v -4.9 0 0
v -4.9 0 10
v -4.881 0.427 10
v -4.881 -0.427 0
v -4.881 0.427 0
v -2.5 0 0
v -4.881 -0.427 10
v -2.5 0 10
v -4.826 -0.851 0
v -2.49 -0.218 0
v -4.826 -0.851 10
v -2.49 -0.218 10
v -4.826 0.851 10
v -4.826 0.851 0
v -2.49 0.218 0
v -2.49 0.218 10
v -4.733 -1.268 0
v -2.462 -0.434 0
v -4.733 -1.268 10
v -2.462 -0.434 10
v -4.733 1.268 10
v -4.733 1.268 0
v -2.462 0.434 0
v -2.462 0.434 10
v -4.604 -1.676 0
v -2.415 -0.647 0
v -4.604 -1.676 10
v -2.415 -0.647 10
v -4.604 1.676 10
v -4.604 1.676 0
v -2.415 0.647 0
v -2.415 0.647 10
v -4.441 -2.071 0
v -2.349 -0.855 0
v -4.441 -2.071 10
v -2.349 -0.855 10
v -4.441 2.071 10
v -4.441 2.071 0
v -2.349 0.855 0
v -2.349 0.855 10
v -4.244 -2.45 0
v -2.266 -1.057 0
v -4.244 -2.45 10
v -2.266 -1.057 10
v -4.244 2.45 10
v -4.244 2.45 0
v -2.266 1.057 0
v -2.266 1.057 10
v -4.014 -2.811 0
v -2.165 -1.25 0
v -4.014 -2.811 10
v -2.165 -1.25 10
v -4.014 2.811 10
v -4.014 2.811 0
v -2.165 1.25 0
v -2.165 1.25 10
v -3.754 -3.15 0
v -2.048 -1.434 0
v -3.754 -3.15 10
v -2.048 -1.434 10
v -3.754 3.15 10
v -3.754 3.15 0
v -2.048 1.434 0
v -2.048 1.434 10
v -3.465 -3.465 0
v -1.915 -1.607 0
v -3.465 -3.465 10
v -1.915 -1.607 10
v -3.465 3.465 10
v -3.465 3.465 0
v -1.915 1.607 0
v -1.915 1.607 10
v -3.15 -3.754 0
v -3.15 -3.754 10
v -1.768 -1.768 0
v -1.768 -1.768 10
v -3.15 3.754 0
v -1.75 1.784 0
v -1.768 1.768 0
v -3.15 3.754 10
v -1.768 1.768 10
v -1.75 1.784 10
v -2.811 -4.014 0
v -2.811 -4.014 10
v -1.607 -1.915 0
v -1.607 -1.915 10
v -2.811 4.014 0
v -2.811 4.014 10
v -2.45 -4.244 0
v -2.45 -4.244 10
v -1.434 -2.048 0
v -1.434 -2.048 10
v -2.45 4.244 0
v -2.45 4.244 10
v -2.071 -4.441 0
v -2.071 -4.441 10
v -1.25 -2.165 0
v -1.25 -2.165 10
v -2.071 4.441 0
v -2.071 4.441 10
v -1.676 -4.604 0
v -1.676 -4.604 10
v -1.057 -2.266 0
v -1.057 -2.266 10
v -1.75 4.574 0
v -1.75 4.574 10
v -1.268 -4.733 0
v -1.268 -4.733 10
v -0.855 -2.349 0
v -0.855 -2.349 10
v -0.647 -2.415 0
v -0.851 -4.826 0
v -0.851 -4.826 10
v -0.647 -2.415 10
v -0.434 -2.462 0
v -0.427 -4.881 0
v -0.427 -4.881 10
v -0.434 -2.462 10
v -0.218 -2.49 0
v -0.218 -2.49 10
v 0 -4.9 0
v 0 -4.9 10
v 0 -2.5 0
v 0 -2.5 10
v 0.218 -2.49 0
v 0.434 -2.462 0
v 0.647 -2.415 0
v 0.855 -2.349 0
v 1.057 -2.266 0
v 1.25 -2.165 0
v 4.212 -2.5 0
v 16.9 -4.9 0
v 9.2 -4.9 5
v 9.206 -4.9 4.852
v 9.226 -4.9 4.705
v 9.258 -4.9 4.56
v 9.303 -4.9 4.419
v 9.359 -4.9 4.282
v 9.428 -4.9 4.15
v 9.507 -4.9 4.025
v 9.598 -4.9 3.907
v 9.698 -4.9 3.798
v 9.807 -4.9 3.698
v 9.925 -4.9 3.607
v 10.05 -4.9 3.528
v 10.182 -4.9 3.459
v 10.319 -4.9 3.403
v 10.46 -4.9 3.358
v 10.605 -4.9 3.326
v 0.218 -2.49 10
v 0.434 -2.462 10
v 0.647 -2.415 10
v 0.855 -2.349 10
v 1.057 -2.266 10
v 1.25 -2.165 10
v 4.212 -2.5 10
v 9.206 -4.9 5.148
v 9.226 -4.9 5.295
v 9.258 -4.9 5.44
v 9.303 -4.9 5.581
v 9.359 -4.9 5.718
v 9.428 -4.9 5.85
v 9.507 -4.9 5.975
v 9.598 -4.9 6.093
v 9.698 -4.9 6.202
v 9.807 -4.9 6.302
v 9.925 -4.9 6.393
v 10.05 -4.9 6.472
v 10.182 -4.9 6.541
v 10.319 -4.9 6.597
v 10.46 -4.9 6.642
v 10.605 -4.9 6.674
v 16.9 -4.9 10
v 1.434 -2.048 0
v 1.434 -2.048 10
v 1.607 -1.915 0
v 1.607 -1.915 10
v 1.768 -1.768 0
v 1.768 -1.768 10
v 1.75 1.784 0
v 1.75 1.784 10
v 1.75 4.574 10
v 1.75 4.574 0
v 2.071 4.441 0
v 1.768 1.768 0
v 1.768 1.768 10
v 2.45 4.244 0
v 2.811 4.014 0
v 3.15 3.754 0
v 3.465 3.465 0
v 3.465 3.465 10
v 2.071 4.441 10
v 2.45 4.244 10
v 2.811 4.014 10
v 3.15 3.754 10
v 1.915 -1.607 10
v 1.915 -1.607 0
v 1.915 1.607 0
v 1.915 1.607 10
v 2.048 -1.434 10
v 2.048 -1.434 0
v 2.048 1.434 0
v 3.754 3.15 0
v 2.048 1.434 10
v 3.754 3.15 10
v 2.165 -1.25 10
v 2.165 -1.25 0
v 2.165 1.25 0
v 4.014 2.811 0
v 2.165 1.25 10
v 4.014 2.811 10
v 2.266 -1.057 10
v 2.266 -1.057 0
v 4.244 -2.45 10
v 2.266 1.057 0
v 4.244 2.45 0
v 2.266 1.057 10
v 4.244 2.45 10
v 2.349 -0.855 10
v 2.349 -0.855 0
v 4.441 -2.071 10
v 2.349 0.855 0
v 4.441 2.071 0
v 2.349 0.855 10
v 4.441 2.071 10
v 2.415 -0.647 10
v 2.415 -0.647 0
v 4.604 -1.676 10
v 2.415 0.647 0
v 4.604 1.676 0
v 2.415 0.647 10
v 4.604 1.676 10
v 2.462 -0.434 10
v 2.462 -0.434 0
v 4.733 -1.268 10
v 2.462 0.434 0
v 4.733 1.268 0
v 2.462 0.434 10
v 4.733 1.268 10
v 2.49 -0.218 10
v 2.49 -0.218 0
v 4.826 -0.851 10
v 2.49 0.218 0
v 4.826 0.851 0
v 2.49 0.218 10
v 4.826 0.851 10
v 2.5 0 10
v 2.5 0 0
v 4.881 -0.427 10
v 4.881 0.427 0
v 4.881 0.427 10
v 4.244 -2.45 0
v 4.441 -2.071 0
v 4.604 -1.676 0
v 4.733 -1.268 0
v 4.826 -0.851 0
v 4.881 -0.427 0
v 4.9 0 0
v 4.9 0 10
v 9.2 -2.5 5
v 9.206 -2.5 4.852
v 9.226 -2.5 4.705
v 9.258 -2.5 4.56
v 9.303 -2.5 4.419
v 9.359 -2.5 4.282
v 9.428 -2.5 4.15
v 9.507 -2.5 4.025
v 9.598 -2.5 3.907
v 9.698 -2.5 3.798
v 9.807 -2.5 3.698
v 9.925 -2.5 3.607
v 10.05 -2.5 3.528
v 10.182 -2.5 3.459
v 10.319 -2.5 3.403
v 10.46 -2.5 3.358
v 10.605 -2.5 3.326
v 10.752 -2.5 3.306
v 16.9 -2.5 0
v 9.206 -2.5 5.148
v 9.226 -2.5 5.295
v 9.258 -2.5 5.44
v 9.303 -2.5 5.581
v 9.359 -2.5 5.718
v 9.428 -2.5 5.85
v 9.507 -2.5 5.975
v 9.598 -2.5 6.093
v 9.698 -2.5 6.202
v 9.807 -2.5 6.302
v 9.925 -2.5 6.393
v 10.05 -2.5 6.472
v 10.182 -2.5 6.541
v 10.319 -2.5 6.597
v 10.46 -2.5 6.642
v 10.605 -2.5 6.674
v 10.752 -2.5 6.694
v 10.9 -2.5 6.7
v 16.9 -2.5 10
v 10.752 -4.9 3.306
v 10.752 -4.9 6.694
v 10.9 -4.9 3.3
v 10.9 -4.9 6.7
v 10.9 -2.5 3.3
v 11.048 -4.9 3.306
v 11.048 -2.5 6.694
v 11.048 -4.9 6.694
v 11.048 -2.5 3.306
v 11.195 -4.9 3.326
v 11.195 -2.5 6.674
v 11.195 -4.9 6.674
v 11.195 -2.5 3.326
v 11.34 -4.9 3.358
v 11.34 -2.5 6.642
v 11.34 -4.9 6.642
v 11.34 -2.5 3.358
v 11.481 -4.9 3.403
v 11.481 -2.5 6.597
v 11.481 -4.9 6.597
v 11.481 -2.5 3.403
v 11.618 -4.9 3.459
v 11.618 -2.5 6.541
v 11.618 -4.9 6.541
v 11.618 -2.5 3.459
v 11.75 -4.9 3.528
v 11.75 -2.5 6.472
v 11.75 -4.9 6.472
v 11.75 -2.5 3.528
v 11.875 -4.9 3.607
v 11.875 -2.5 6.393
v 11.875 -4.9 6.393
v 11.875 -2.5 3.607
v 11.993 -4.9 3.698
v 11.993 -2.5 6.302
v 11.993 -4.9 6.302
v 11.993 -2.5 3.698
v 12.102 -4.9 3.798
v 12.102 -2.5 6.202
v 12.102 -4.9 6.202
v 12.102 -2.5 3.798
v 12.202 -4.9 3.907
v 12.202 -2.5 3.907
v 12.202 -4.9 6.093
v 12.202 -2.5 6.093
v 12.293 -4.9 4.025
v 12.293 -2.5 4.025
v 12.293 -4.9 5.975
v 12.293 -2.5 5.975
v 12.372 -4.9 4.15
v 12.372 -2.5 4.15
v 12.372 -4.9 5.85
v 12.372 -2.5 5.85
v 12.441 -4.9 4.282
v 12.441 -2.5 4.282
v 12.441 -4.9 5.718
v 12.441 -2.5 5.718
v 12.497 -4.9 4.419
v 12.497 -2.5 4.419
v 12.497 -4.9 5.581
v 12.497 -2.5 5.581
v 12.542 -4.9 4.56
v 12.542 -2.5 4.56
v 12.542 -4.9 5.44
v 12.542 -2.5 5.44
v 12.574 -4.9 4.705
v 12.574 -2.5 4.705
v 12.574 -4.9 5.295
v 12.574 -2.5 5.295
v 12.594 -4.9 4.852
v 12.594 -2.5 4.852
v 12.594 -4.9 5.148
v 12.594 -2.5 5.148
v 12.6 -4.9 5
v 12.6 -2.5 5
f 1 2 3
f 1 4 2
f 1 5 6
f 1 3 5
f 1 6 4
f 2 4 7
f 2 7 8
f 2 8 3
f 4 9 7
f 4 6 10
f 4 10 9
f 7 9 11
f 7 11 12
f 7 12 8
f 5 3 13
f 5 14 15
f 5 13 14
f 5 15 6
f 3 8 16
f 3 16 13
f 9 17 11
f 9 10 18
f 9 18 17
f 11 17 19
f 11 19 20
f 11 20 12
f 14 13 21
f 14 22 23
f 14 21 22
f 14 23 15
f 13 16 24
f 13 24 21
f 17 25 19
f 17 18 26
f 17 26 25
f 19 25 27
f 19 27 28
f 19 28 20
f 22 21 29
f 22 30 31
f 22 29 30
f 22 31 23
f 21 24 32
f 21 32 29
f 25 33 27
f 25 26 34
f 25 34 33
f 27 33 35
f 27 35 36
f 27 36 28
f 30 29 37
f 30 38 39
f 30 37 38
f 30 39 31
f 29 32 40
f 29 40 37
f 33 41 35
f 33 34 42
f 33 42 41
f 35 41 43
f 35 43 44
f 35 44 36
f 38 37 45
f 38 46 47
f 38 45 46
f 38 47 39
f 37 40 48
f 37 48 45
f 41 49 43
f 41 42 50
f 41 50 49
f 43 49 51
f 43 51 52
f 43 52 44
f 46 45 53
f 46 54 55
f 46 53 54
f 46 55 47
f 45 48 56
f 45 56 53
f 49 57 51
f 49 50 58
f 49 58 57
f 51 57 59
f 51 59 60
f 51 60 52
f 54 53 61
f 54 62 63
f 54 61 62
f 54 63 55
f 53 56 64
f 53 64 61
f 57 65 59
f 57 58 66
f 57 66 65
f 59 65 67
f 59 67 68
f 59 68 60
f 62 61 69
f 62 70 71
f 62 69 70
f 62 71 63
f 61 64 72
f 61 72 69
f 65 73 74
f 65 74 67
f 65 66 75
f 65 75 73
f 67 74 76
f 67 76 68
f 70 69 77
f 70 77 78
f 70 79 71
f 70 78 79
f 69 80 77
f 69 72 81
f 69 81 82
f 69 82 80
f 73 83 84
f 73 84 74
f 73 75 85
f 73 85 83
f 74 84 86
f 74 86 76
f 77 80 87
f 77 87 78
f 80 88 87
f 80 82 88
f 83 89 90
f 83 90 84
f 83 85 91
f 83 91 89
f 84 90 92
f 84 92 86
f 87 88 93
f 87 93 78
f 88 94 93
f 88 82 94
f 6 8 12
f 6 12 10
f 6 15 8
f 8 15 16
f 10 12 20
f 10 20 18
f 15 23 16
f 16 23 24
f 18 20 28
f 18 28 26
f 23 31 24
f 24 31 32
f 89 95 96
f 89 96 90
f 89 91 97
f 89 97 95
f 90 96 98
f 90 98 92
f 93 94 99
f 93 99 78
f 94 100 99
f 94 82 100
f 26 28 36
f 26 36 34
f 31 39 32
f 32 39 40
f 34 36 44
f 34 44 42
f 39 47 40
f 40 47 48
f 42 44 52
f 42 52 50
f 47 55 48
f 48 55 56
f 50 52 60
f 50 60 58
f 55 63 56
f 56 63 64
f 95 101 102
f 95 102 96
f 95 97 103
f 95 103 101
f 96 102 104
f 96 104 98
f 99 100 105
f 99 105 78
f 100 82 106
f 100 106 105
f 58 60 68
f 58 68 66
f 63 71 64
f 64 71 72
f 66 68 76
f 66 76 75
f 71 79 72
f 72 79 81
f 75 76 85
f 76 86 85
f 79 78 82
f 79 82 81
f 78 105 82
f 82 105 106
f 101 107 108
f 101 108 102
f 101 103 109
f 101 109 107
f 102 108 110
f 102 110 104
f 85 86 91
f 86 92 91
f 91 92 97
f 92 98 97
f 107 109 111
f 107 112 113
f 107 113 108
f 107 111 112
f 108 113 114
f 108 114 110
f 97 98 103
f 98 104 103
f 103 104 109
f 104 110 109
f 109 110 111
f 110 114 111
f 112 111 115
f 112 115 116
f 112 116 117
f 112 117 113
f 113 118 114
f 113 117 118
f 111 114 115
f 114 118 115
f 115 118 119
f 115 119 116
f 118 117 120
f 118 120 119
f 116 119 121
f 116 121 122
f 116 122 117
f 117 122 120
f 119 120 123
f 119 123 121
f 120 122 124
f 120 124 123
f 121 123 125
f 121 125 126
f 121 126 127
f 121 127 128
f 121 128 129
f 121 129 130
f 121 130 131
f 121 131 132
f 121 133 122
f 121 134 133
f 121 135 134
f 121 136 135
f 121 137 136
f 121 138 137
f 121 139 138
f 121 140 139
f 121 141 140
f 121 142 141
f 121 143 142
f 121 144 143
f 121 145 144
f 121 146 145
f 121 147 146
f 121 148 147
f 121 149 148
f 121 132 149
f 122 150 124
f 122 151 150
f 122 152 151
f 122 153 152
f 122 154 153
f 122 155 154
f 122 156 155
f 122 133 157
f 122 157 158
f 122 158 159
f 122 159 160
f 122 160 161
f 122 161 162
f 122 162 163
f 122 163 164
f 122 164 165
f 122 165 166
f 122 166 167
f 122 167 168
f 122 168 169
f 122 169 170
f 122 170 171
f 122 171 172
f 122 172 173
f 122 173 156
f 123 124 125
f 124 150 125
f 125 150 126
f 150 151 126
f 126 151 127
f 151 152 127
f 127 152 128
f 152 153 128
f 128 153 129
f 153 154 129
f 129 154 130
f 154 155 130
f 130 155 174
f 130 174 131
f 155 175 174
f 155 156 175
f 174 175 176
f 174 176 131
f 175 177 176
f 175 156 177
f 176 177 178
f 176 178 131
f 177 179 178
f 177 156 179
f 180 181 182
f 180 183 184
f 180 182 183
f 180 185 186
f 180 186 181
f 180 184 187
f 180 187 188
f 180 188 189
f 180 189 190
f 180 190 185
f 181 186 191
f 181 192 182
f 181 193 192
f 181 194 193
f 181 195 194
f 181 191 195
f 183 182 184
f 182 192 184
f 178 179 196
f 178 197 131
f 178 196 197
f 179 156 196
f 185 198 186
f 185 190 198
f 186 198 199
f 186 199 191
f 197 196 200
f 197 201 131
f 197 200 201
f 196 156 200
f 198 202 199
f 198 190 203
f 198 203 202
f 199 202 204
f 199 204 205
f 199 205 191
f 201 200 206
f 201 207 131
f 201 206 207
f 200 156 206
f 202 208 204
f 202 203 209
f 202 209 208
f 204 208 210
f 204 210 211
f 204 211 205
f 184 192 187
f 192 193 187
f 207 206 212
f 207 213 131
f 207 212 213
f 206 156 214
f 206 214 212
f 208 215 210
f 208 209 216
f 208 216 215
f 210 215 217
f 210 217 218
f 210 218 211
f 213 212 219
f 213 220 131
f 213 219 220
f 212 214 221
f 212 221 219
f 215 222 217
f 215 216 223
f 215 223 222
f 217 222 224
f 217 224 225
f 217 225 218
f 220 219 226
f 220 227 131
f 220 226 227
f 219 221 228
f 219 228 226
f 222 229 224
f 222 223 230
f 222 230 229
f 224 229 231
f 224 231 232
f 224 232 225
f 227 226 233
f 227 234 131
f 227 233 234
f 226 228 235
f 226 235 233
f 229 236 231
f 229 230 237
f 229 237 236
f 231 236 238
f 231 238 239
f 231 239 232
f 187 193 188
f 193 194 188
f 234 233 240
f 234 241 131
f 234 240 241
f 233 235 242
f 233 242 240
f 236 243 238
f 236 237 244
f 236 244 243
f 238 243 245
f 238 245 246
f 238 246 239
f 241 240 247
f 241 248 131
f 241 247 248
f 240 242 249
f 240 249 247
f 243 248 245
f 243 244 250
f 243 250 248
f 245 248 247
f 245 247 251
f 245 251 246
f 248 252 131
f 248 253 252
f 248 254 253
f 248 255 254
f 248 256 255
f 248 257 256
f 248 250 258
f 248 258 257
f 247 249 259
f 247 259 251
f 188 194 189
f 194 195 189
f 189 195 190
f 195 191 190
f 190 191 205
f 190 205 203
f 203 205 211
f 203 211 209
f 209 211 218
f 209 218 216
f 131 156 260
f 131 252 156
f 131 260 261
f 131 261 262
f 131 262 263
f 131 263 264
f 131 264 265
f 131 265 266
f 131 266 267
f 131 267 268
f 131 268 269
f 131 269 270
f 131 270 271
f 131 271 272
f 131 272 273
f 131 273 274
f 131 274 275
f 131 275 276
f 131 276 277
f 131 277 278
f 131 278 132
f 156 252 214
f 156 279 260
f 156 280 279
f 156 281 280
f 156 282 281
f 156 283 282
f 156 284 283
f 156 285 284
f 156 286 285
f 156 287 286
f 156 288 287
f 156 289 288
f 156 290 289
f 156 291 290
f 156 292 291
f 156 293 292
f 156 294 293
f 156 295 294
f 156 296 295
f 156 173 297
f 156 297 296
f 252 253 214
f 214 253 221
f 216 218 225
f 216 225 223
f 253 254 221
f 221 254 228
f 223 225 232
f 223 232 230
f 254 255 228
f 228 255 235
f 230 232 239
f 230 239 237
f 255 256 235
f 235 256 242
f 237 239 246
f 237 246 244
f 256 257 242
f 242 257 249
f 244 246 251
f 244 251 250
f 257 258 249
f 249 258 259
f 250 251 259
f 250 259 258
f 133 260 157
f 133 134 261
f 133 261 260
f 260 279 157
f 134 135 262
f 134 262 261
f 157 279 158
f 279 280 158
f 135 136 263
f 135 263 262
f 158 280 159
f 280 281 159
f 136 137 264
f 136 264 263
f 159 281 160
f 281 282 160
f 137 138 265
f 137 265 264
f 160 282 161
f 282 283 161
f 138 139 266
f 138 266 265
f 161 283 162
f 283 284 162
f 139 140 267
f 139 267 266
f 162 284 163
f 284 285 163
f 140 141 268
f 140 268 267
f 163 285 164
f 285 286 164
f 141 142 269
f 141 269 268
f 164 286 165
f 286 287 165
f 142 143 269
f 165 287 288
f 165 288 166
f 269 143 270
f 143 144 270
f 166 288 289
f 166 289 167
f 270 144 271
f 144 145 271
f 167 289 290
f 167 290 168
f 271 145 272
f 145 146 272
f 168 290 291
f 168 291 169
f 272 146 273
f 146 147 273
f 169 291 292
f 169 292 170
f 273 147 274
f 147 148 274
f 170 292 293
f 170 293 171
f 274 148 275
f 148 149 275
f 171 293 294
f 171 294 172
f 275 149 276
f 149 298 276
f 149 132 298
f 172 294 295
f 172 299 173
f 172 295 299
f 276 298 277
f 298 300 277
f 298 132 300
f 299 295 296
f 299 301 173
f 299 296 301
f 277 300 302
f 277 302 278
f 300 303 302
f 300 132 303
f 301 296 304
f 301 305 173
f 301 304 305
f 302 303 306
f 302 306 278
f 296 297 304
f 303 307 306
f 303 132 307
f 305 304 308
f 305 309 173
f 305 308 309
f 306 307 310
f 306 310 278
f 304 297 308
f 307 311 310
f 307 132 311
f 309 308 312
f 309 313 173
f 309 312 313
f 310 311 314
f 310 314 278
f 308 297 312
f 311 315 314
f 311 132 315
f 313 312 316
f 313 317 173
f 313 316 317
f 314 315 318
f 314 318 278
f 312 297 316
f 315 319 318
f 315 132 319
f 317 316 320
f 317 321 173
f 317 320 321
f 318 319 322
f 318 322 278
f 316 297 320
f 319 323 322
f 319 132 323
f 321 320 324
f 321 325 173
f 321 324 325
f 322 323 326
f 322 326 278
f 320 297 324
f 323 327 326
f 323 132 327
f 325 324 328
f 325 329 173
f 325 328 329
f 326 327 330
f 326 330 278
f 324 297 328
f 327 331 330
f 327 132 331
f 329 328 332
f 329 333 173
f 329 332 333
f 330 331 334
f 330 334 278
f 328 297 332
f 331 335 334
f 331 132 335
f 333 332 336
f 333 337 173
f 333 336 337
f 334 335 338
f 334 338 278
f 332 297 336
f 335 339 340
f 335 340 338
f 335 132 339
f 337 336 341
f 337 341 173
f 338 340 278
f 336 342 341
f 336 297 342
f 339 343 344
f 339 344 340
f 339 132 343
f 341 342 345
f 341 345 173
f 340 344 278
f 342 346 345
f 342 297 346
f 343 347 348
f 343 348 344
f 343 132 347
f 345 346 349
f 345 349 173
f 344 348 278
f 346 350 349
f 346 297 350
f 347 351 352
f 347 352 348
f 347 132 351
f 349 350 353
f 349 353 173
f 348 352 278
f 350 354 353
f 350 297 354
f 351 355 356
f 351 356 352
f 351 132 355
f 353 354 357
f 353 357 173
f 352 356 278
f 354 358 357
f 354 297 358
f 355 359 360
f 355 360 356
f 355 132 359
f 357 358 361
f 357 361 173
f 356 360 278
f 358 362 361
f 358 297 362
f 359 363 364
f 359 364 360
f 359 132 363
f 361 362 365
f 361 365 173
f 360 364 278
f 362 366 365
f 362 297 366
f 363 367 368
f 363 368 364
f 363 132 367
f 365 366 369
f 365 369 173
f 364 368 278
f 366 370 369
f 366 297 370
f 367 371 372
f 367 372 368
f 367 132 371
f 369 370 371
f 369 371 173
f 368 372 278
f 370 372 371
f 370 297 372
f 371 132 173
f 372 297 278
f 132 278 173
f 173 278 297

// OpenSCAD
// Example: screw-down cable clip. No libraries needed.
// Build: python scripts/build_part.py printer/cable-clip -D cable_d=6
// Prints on its side as modelled (profile on the plate): no supports.

/* [Cable] */
cable_d = 5;        // cable diameter
gap     = 3.5;      // opening the cable snaps through; smaller than cable_d

/* [Body] */
wall    = 2.4;
width   = 10;       // extrusion height when printed
tab_len = 12;
screw_d = 3.4;      // M3 clearance

$fn = 72;

outer_r = cable_d / 2 + wall;

module profile() {
    difference() {
        union() {
            circle(outer_r);
            // mounting tab, flush with the bottom of the ring
            translate([0, -outer_r])
                square([outer_r + tab_len, wall]);
        }
        circle(d = cable_d);
        // snap-in opening at the top
        translate([-gap / 2, 0])
            square([gap, outer_r + 1]);
    }
}

difference() {
    linear_extrude(width) profile();
    // screw hole down through the tab
    translate([outer_r + tab_len / 2, -outer_r - 1, width / 2])
        rotate([-90, 0, 0])
            cylinder(d = screw_d, h = wall + 2);
}
